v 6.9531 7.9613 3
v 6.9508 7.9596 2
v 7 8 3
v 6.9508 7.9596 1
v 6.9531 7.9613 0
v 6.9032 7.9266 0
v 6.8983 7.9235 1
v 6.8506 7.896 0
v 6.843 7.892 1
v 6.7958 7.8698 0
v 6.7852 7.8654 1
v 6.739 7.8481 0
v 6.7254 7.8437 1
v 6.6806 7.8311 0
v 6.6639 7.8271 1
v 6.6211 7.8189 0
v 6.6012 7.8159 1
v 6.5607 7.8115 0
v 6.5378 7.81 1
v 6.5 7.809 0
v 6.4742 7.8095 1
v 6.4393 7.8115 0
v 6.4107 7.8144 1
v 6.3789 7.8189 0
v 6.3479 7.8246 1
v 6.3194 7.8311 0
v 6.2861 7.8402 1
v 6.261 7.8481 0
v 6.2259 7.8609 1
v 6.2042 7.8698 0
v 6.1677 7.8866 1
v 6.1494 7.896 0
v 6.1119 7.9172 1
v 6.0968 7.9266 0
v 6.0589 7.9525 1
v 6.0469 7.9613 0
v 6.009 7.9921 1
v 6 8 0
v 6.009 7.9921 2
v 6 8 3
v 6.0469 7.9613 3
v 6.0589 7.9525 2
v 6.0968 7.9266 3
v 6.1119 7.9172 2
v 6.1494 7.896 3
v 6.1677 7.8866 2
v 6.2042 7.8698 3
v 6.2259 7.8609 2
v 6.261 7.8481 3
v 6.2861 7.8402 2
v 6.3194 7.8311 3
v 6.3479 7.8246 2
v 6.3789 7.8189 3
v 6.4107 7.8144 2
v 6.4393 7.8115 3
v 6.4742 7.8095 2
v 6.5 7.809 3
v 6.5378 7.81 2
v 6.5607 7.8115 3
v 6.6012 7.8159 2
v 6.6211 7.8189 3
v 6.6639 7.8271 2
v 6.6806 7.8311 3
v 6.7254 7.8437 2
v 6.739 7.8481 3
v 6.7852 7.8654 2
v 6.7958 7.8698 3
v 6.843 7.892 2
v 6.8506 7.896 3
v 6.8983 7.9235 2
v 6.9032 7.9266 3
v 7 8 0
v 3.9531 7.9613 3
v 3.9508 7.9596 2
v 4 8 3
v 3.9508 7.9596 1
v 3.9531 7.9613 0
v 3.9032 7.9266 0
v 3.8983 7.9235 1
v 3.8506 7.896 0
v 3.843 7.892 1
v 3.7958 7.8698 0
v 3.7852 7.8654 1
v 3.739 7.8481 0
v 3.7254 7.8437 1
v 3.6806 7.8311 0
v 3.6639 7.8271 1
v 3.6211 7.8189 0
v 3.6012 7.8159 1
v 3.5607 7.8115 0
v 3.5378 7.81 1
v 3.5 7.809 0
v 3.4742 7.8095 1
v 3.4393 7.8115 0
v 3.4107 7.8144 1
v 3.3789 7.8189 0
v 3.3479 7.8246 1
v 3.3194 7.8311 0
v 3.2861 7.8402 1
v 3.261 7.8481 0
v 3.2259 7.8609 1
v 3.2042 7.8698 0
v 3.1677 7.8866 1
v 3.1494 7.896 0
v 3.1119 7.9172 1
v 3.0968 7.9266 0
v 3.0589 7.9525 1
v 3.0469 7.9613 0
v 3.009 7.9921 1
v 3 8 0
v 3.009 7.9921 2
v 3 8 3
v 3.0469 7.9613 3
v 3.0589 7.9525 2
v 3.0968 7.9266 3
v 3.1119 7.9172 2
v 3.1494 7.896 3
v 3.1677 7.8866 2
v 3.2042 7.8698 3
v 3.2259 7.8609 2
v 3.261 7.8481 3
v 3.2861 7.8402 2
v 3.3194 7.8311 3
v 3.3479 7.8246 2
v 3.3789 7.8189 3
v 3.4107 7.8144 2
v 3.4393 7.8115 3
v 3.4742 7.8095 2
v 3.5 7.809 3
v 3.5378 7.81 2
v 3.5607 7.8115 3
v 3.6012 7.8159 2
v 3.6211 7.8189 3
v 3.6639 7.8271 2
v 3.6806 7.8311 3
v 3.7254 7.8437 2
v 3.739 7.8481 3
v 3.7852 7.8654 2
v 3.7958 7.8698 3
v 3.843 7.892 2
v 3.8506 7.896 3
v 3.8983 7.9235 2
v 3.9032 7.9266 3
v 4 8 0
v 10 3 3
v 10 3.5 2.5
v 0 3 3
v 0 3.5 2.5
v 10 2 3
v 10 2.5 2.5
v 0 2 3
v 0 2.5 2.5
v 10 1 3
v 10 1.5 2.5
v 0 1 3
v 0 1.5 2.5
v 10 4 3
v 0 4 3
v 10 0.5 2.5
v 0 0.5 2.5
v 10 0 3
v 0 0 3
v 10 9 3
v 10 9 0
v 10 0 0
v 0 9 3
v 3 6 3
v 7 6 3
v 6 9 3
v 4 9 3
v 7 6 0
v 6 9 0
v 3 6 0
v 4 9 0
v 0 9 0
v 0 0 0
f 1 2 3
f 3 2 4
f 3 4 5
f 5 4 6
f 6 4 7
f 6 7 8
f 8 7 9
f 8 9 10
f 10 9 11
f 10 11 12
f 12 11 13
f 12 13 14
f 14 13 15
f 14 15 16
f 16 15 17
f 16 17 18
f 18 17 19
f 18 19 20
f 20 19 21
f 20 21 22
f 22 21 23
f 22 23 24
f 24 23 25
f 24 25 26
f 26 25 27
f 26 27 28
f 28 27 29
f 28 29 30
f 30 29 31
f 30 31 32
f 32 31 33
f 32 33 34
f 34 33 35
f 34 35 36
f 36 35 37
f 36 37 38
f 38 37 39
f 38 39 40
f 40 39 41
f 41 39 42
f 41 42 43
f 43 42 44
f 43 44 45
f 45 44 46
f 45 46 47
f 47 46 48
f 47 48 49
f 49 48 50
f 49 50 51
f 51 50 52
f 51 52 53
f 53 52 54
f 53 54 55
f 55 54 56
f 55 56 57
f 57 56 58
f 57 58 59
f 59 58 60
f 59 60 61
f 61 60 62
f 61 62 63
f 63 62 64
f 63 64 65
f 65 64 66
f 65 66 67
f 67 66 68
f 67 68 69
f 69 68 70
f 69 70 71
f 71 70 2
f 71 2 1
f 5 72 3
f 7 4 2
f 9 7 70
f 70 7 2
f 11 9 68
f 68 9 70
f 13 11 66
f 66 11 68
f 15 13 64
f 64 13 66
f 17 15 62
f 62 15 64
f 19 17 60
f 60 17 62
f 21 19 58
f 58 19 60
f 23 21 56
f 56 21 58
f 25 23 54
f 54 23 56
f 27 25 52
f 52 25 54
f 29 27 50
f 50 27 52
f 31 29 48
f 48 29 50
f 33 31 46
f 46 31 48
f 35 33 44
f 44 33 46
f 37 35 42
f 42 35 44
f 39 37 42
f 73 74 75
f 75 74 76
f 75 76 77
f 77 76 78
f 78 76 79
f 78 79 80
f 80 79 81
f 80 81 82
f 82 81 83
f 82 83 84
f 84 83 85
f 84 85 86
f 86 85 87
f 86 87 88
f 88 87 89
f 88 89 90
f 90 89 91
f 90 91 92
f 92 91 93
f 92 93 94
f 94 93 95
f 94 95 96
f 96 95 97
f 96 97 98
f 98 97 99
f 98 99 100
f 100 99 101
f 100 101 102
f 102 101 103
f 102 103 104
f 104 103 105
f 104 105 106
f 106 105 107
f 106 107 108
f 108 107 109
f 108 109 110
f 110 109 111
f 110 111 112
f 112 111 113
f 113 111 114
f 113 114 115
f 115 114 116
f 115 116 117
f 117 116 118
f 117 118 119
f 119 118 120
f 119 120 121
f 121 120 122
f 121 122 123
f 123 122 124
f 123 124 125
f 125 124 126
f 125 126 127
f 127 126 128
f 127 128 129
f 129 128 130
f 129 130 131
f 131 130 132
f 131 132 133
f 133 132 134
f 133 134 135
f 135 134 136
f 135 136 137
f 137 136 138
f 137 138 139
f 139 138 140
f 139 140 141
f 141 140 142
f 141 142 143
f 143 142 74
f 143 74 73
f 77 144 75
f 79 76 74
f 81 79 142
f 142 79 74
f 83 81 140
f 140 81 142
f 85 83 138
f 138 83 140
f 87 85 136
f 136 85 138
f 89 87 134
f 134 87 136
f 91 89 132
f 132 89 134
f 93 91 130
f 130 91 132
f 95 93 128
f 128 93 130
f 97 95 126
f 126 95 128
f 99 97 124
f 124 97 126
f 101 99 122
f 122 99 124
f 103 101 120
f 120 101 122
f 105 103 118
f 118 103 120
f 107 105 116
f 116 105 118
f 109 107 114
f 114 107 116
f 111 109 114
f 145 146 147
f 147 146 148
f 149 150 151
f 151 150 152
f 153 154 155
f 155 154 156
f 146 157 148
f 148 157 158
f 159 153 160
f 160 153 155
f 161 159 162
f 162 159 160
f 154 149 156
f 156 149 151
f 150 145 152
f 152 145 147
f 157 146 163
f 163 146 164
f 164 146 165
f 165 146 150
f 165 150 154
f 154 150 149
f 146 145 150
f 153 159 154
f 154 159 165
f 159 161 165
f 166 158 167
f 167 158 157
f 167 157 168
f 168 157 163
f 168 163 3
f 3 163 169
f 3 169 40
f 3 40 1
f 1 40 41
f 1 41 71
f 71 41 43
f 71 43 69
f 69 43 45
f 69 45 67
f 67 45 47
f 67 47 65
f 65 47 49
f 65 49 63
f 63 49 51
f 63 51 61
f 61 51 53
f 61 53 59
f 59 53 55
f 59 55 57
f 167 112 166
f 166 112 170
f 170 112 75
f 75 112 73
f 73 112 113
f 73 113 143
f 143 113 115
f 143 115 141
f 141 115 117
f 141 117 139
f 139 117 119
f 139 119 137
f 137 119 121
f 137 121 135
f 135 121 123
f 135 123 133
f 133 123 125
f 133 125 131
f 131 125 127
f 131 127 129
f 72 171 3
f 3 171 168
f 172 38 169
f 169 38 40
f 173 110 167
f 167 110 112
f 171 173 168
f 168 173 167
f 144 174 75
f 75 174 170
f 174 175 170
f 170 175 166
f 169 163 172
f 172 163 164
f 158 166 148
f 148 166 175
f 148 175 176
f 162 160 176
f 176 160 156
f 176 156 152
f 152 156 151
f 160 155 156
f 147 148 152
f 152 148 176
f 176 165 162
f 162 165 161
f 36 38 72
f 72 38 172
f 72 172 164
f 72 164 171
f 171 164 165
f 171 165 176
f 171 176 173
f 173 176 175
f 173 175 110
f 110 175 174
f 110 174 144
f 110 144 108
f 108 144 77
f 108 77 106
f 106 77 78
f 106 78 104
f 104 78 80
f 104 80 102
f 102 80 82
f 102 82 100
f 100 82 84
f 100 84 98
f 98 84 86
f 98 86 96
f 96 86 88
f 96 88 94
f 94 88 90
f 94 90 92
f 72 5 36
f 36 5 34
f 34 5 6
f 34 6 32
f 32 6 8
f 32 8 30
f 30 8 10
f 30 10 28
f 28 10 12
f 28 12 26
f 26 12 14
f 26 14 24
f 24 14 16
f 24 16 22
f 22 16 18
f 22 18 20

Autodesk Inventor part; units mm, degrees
ref_plane "YZ Plane" through (0, 0, 0) normal (1, 0, 0) x (0, 1, 0)
ref_plane "XZ Plane" through (0, 0, 0) normal (0, 1, 0) x (-1, 0, 0)
ref_plane "XY Plane" through (0, 0, 0) normal (0, 0, 1) x (1, 0, 0)
sketch "Sketch1" plane through (0, 0, 0) normal (0, 0, 1) x (1, 0, 0)
  line L0 (0, 0) -> (10, 0)
  line L1 (10, 0) -> (10, 9)
  line L2 (10, 9) -> (0, 9)
  line L3 (0, 9) -> (0, 0)
  point P0 (5, 9)
  dimension "d0" = 10
  dimension "d1" = 9
extrude "Extrusion1" add sketch "Sketch1" along normal blind 3
sketch "Sketch10" plane through (0, 0, 0) normal (-1, 0, 0) x (0, 0, 1)
  line L0 (0, 0) -> (3, 0) projected
  line L1 (3, 0) -> (2.5, 0)
  line L2 (2.5, 0) -> (2.5, 0.5)
  line L3 (2.5, 6) -> (3, 6)
  line L4 (3, 6) -> (3, 4)
  line L5 (3, 0) -> (3.7071, 0) construction
  line L6 (2.5, 4.25) -> (3, 4.25)
  line L7 (3, 1) -> (2.5, 1.5)
  line L8 (2.5, 1.5) -> (3, 2)
  line L9 (3, 2) -> (2.5, 2.5)
  line L10 (2.5, 2.5) -> (3, 3)
  line L11 (3, 3) -> (2.5, 3.5)
  line L12 (2.5, 3.5) -> (3, 4)
  line L13 (3, 4) -> (3, 4.25)
  line L14 (3, 1) -> (3, 0)
  line L15 (3, 2) -> (3, 1)
  line L16 (3, 4) -> (3, 3)
  line L17 (2.5, 2.5) -> (2.5, 3.5)
  line L18 (2.5, 1.5) -> (2.5, 2.5)
  line L19 (2.5, 0.5) -> (2.5, 1.5)
  line L20 (2.5, 3.5) -> (2.5, 6)
  line L21 (3, 3) -> (3, 2)
  line L22 (3, 1) -> (2.5, 0.5)
  line L23 (2.5, 0.5) -> (3, 0)
  point P0 (2.5, 3)
  dimension "d23" = 0.5
  dimension "d24" = 6
sketch "Sketch12" plane through (0, 0, 3) normal (0, 0, 1) x (1, 0, 0)
  line L0 (10, 9) -> (0, 9) projected
  line L1 (7, 6) -> (3, 6)
  line L2 (3, 6) -> (3, 8)
  line L3 (3, 8) -> (7, 8)
  line L4 (7, 8) -> (7, 6)
  line L5 (7, 6) -> (3, 8) construction
  line L6 (3, 6) -> (7, 8) construction
  line L7 (6, 7) -> (4, 7)
  line L8 (4, 7) -> (4, 9)
  line L9 (4, 9) -> (6, 9)
  line L10 (6, 9) -> (6, 7)
  line L11 (6, 7) -> (4, 9) construction
  line L12 (4, 7) -> (6, 9) construction
  line L13 (0, 9) -> (0, 0) projected
  point P0 (5, 7)
  point P1 (5, 8)
  dimension "d47" = 2
  dimension "d48" = 4
  dimension "d49" = 2
  dimension "d50" = 2
  dimension "d68" = 5
extrude "Extrusion10" cut sketch "Sketch12" against normal up to next
extrude "Extrusion13" cut sketch "Sketch10" against normal up to next contours L23 L22 L14 | L7 L8 L15 | L9 L10 L21 | L11 L12 L16
sketch "Sketch16" plane through (0, 0, 0) normal (0, 0, -1) x (-1, 0, 0)
  line L0 (-7, 8) -> (-6, 8) projected
  arc A0 (-7, 8) -> (-6, 8) centre (-6.5, 8.559) ccw
  line L1 (-4, 8) -> (-3, 8) projected
  line L2 (-3, 8) -> (-3, 6) projected
  arc A1 (-4, 8) -> (-3, 8) centre (-3.5, 8.559) ccw
  point P0 (0, 0)
  dimension "d69" = 0.75
  dimension "d70" = 0.75
extrude "Extrusion14" add sketch "Sketch16" against normal up to surface (3 mm away)
properties part number "Clamp-part2(moving)-Base9x10mm."
